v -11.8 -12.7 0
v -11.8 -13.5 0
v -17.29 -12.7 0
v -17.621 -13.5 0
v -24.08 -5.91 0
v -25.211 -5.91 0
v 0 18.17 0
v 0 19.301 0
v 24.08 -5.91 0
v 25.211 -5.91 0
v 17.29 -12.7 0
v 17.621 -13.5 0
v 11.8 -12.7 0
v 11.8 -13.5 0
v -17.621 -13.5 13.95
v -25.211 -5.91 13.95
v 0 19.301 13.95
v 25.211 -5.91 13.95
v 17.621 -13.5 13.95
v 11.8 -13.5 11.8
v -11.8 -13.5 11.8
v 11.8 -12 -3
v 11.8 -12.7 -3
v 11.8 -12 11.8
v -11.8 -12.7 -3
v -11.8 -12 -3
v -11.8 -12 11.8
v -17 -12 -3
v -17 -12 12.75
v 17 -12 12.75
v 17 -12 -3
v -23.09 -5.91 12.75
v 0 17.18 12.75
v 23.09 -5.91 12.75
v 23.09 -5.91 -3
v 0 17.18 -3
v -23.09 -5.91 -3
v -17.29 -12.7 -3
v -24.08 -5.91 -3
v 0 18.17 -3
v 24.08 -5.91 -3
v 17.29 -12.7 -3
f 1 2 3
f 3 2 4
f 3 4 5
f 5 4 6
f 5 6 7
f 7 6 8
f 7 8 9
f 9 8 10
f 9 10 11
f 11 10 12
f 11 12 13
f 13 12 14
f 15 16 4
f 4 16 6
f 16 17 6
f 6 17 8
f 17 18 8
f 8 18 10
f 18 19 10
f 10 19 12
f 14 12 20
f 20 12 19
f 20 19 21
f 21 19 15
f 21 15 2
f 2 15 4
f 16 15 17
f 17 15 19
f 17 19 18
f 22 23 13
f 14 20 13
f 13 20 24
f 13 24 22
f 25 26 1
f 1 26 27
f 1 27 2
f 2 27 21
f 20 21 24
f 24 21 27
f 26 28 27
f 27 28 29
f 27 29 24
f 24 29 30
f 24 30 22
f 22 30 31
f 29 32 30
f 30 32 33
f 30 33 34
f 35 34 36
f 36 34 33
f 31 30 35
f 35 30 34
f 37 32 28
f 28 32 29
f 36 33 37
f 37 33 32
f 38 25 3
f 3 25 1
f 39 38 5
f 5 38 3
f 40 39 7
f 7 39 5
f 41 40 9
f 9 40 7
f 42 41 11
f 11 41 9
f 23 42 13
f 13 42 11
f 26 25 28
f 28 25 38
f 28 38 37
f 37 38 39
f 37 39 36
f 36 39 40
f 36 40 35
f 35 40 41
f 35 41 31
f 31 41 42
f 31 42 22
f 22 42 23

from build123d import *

# Parameters (mm, degrees)
EXTRUDE_1_DEPTH          = 12.75
EXTRUDE_1_DEPTH_BACK     = 12.75
EXTRUDE_1_2_DEPTH        = 1.2
EXTRUDE_2_DEPTH          = 1.2
SKETCH_4_W               = 23.6
SKETCH_4_H               = 23.6
CUT_EXTRUDE_1_DEPTH      = 1.5
CUT_EXTRUDE_2_DEPTH      = 35.680906203
CUT_EXTRUDE_2_DEPTH_BACK = 35.680906203
SKETCH_5_W               = 13.95
SKETCH_5_H               = 32.801494515
EXTRUDE_3_DEPTH          = 3


with BuildPart() as part:
    # Эскиз1 → Extrude 1 (new, two sides: drawn at the far end of the back side and taken through both)
    with BuildSketch(Plane.XY.offset(-EXTRUDE_1_DEPTH_BACK)):
        Polygon((-17.621320344, -13.5), (17.621320344, -13.5), (25.211407429, -5.909912914), (0, 19.301494515), (-25.211407429, -5.909912914), align=None)
        Polygon((-17, -12), (17, -12), (23.090087086, -5.909912914), (0, 17.180174171), (-23.090087086, -5.909912914), align=None, mode=Mode.SUBTRACT)
    extrude(amount=EXTRUDE_1_DEPTH + EXTRUDE_1_DEPTH_BACK)

    # Эскиз2 → Extrude 1 2 (add)
    with BuildSketch(Plane.XY.offset(12.75)):
        Polygon((25.211407429, -5.909912914), (0, 19.301494515), (-25.211407429, -5.909912914), (-17.621320344, -13.5), (17.621320344, -13.5), align=None)
    extrude(amount=EXTRUDE_1_2_DEPTH)

    # Эскиз3 → Бобышка-Вытянуть2 (add)
    with BuildSketch(Plane(origin=(0, 0, -12.75), x_dir=(-1, 0, 0), z_dir=(0, 0, -1))):
        Polygon((0, 19.301494515), (25.211407429, -5.909912914), (17.621320344, -13.5), (-17.621320344, -13.5), (-25.211407429, -5.909912914), align=None)
    extrude(amount=EXTRUDE_2_DEPTH)

    # Эскиз4 → Вырез-Вытянуть1 (cut)
    with BuildSketch(Plane.XZ.offset(13.5)):
        Rectangle(SKETCH_4_W, SKETCH_4_H)
    extrude(amount=-CUT_EXTRUDE_1_DEPTH, mode=Mode.SUBTRACT)

    # Эскиз5 → Вырез-Вытянуть2 (cut, two sides: drawn at the far end of the back side and taken through both)
    with BuildSketch(Plane(origin=(0, 0, 0), x_dir=(0, 0, -1), z_dir=(1, 0, 0)).offset(-CUT_EXTRUDE_2_DEPTH_BACK)):
        with Locations((6.975, 2.900747258)):
            Rectangle(SKETCH_5_W, SKETCH_5_H)
    extrude(amount=CUT_EXTRUDE_2_DEPTH + CUT_EXTRUDE_2_DEPTH_BACK, mode=Mode.SUBTRACT)

    # Эскиз7 → Бобышка-Вытянуть3 (add)
    with BuildSketch(Plane(origin=(0, 0, 0), x_dir=(-1, 0, 0), z_dir=(0, 0, -1))):
        Polygon((-17.289949494, -12.7), (-11.8, -12.7), (-11.8, -12), (-17, -12), (-23.090087086, -5.909912914), (0, 17.180174171), (23.090087086, -5.909912914), (17, -12), (11.8, -12), (11.8, -12.7), (17.289949494, -12.7), (24.080036579, -5.909912914), (0, 18.170123665), (-24.080036579, -5.909912914), align=None)
    extrude(amount=EXTRUDE_3_DEPTH)


solid = part.part
